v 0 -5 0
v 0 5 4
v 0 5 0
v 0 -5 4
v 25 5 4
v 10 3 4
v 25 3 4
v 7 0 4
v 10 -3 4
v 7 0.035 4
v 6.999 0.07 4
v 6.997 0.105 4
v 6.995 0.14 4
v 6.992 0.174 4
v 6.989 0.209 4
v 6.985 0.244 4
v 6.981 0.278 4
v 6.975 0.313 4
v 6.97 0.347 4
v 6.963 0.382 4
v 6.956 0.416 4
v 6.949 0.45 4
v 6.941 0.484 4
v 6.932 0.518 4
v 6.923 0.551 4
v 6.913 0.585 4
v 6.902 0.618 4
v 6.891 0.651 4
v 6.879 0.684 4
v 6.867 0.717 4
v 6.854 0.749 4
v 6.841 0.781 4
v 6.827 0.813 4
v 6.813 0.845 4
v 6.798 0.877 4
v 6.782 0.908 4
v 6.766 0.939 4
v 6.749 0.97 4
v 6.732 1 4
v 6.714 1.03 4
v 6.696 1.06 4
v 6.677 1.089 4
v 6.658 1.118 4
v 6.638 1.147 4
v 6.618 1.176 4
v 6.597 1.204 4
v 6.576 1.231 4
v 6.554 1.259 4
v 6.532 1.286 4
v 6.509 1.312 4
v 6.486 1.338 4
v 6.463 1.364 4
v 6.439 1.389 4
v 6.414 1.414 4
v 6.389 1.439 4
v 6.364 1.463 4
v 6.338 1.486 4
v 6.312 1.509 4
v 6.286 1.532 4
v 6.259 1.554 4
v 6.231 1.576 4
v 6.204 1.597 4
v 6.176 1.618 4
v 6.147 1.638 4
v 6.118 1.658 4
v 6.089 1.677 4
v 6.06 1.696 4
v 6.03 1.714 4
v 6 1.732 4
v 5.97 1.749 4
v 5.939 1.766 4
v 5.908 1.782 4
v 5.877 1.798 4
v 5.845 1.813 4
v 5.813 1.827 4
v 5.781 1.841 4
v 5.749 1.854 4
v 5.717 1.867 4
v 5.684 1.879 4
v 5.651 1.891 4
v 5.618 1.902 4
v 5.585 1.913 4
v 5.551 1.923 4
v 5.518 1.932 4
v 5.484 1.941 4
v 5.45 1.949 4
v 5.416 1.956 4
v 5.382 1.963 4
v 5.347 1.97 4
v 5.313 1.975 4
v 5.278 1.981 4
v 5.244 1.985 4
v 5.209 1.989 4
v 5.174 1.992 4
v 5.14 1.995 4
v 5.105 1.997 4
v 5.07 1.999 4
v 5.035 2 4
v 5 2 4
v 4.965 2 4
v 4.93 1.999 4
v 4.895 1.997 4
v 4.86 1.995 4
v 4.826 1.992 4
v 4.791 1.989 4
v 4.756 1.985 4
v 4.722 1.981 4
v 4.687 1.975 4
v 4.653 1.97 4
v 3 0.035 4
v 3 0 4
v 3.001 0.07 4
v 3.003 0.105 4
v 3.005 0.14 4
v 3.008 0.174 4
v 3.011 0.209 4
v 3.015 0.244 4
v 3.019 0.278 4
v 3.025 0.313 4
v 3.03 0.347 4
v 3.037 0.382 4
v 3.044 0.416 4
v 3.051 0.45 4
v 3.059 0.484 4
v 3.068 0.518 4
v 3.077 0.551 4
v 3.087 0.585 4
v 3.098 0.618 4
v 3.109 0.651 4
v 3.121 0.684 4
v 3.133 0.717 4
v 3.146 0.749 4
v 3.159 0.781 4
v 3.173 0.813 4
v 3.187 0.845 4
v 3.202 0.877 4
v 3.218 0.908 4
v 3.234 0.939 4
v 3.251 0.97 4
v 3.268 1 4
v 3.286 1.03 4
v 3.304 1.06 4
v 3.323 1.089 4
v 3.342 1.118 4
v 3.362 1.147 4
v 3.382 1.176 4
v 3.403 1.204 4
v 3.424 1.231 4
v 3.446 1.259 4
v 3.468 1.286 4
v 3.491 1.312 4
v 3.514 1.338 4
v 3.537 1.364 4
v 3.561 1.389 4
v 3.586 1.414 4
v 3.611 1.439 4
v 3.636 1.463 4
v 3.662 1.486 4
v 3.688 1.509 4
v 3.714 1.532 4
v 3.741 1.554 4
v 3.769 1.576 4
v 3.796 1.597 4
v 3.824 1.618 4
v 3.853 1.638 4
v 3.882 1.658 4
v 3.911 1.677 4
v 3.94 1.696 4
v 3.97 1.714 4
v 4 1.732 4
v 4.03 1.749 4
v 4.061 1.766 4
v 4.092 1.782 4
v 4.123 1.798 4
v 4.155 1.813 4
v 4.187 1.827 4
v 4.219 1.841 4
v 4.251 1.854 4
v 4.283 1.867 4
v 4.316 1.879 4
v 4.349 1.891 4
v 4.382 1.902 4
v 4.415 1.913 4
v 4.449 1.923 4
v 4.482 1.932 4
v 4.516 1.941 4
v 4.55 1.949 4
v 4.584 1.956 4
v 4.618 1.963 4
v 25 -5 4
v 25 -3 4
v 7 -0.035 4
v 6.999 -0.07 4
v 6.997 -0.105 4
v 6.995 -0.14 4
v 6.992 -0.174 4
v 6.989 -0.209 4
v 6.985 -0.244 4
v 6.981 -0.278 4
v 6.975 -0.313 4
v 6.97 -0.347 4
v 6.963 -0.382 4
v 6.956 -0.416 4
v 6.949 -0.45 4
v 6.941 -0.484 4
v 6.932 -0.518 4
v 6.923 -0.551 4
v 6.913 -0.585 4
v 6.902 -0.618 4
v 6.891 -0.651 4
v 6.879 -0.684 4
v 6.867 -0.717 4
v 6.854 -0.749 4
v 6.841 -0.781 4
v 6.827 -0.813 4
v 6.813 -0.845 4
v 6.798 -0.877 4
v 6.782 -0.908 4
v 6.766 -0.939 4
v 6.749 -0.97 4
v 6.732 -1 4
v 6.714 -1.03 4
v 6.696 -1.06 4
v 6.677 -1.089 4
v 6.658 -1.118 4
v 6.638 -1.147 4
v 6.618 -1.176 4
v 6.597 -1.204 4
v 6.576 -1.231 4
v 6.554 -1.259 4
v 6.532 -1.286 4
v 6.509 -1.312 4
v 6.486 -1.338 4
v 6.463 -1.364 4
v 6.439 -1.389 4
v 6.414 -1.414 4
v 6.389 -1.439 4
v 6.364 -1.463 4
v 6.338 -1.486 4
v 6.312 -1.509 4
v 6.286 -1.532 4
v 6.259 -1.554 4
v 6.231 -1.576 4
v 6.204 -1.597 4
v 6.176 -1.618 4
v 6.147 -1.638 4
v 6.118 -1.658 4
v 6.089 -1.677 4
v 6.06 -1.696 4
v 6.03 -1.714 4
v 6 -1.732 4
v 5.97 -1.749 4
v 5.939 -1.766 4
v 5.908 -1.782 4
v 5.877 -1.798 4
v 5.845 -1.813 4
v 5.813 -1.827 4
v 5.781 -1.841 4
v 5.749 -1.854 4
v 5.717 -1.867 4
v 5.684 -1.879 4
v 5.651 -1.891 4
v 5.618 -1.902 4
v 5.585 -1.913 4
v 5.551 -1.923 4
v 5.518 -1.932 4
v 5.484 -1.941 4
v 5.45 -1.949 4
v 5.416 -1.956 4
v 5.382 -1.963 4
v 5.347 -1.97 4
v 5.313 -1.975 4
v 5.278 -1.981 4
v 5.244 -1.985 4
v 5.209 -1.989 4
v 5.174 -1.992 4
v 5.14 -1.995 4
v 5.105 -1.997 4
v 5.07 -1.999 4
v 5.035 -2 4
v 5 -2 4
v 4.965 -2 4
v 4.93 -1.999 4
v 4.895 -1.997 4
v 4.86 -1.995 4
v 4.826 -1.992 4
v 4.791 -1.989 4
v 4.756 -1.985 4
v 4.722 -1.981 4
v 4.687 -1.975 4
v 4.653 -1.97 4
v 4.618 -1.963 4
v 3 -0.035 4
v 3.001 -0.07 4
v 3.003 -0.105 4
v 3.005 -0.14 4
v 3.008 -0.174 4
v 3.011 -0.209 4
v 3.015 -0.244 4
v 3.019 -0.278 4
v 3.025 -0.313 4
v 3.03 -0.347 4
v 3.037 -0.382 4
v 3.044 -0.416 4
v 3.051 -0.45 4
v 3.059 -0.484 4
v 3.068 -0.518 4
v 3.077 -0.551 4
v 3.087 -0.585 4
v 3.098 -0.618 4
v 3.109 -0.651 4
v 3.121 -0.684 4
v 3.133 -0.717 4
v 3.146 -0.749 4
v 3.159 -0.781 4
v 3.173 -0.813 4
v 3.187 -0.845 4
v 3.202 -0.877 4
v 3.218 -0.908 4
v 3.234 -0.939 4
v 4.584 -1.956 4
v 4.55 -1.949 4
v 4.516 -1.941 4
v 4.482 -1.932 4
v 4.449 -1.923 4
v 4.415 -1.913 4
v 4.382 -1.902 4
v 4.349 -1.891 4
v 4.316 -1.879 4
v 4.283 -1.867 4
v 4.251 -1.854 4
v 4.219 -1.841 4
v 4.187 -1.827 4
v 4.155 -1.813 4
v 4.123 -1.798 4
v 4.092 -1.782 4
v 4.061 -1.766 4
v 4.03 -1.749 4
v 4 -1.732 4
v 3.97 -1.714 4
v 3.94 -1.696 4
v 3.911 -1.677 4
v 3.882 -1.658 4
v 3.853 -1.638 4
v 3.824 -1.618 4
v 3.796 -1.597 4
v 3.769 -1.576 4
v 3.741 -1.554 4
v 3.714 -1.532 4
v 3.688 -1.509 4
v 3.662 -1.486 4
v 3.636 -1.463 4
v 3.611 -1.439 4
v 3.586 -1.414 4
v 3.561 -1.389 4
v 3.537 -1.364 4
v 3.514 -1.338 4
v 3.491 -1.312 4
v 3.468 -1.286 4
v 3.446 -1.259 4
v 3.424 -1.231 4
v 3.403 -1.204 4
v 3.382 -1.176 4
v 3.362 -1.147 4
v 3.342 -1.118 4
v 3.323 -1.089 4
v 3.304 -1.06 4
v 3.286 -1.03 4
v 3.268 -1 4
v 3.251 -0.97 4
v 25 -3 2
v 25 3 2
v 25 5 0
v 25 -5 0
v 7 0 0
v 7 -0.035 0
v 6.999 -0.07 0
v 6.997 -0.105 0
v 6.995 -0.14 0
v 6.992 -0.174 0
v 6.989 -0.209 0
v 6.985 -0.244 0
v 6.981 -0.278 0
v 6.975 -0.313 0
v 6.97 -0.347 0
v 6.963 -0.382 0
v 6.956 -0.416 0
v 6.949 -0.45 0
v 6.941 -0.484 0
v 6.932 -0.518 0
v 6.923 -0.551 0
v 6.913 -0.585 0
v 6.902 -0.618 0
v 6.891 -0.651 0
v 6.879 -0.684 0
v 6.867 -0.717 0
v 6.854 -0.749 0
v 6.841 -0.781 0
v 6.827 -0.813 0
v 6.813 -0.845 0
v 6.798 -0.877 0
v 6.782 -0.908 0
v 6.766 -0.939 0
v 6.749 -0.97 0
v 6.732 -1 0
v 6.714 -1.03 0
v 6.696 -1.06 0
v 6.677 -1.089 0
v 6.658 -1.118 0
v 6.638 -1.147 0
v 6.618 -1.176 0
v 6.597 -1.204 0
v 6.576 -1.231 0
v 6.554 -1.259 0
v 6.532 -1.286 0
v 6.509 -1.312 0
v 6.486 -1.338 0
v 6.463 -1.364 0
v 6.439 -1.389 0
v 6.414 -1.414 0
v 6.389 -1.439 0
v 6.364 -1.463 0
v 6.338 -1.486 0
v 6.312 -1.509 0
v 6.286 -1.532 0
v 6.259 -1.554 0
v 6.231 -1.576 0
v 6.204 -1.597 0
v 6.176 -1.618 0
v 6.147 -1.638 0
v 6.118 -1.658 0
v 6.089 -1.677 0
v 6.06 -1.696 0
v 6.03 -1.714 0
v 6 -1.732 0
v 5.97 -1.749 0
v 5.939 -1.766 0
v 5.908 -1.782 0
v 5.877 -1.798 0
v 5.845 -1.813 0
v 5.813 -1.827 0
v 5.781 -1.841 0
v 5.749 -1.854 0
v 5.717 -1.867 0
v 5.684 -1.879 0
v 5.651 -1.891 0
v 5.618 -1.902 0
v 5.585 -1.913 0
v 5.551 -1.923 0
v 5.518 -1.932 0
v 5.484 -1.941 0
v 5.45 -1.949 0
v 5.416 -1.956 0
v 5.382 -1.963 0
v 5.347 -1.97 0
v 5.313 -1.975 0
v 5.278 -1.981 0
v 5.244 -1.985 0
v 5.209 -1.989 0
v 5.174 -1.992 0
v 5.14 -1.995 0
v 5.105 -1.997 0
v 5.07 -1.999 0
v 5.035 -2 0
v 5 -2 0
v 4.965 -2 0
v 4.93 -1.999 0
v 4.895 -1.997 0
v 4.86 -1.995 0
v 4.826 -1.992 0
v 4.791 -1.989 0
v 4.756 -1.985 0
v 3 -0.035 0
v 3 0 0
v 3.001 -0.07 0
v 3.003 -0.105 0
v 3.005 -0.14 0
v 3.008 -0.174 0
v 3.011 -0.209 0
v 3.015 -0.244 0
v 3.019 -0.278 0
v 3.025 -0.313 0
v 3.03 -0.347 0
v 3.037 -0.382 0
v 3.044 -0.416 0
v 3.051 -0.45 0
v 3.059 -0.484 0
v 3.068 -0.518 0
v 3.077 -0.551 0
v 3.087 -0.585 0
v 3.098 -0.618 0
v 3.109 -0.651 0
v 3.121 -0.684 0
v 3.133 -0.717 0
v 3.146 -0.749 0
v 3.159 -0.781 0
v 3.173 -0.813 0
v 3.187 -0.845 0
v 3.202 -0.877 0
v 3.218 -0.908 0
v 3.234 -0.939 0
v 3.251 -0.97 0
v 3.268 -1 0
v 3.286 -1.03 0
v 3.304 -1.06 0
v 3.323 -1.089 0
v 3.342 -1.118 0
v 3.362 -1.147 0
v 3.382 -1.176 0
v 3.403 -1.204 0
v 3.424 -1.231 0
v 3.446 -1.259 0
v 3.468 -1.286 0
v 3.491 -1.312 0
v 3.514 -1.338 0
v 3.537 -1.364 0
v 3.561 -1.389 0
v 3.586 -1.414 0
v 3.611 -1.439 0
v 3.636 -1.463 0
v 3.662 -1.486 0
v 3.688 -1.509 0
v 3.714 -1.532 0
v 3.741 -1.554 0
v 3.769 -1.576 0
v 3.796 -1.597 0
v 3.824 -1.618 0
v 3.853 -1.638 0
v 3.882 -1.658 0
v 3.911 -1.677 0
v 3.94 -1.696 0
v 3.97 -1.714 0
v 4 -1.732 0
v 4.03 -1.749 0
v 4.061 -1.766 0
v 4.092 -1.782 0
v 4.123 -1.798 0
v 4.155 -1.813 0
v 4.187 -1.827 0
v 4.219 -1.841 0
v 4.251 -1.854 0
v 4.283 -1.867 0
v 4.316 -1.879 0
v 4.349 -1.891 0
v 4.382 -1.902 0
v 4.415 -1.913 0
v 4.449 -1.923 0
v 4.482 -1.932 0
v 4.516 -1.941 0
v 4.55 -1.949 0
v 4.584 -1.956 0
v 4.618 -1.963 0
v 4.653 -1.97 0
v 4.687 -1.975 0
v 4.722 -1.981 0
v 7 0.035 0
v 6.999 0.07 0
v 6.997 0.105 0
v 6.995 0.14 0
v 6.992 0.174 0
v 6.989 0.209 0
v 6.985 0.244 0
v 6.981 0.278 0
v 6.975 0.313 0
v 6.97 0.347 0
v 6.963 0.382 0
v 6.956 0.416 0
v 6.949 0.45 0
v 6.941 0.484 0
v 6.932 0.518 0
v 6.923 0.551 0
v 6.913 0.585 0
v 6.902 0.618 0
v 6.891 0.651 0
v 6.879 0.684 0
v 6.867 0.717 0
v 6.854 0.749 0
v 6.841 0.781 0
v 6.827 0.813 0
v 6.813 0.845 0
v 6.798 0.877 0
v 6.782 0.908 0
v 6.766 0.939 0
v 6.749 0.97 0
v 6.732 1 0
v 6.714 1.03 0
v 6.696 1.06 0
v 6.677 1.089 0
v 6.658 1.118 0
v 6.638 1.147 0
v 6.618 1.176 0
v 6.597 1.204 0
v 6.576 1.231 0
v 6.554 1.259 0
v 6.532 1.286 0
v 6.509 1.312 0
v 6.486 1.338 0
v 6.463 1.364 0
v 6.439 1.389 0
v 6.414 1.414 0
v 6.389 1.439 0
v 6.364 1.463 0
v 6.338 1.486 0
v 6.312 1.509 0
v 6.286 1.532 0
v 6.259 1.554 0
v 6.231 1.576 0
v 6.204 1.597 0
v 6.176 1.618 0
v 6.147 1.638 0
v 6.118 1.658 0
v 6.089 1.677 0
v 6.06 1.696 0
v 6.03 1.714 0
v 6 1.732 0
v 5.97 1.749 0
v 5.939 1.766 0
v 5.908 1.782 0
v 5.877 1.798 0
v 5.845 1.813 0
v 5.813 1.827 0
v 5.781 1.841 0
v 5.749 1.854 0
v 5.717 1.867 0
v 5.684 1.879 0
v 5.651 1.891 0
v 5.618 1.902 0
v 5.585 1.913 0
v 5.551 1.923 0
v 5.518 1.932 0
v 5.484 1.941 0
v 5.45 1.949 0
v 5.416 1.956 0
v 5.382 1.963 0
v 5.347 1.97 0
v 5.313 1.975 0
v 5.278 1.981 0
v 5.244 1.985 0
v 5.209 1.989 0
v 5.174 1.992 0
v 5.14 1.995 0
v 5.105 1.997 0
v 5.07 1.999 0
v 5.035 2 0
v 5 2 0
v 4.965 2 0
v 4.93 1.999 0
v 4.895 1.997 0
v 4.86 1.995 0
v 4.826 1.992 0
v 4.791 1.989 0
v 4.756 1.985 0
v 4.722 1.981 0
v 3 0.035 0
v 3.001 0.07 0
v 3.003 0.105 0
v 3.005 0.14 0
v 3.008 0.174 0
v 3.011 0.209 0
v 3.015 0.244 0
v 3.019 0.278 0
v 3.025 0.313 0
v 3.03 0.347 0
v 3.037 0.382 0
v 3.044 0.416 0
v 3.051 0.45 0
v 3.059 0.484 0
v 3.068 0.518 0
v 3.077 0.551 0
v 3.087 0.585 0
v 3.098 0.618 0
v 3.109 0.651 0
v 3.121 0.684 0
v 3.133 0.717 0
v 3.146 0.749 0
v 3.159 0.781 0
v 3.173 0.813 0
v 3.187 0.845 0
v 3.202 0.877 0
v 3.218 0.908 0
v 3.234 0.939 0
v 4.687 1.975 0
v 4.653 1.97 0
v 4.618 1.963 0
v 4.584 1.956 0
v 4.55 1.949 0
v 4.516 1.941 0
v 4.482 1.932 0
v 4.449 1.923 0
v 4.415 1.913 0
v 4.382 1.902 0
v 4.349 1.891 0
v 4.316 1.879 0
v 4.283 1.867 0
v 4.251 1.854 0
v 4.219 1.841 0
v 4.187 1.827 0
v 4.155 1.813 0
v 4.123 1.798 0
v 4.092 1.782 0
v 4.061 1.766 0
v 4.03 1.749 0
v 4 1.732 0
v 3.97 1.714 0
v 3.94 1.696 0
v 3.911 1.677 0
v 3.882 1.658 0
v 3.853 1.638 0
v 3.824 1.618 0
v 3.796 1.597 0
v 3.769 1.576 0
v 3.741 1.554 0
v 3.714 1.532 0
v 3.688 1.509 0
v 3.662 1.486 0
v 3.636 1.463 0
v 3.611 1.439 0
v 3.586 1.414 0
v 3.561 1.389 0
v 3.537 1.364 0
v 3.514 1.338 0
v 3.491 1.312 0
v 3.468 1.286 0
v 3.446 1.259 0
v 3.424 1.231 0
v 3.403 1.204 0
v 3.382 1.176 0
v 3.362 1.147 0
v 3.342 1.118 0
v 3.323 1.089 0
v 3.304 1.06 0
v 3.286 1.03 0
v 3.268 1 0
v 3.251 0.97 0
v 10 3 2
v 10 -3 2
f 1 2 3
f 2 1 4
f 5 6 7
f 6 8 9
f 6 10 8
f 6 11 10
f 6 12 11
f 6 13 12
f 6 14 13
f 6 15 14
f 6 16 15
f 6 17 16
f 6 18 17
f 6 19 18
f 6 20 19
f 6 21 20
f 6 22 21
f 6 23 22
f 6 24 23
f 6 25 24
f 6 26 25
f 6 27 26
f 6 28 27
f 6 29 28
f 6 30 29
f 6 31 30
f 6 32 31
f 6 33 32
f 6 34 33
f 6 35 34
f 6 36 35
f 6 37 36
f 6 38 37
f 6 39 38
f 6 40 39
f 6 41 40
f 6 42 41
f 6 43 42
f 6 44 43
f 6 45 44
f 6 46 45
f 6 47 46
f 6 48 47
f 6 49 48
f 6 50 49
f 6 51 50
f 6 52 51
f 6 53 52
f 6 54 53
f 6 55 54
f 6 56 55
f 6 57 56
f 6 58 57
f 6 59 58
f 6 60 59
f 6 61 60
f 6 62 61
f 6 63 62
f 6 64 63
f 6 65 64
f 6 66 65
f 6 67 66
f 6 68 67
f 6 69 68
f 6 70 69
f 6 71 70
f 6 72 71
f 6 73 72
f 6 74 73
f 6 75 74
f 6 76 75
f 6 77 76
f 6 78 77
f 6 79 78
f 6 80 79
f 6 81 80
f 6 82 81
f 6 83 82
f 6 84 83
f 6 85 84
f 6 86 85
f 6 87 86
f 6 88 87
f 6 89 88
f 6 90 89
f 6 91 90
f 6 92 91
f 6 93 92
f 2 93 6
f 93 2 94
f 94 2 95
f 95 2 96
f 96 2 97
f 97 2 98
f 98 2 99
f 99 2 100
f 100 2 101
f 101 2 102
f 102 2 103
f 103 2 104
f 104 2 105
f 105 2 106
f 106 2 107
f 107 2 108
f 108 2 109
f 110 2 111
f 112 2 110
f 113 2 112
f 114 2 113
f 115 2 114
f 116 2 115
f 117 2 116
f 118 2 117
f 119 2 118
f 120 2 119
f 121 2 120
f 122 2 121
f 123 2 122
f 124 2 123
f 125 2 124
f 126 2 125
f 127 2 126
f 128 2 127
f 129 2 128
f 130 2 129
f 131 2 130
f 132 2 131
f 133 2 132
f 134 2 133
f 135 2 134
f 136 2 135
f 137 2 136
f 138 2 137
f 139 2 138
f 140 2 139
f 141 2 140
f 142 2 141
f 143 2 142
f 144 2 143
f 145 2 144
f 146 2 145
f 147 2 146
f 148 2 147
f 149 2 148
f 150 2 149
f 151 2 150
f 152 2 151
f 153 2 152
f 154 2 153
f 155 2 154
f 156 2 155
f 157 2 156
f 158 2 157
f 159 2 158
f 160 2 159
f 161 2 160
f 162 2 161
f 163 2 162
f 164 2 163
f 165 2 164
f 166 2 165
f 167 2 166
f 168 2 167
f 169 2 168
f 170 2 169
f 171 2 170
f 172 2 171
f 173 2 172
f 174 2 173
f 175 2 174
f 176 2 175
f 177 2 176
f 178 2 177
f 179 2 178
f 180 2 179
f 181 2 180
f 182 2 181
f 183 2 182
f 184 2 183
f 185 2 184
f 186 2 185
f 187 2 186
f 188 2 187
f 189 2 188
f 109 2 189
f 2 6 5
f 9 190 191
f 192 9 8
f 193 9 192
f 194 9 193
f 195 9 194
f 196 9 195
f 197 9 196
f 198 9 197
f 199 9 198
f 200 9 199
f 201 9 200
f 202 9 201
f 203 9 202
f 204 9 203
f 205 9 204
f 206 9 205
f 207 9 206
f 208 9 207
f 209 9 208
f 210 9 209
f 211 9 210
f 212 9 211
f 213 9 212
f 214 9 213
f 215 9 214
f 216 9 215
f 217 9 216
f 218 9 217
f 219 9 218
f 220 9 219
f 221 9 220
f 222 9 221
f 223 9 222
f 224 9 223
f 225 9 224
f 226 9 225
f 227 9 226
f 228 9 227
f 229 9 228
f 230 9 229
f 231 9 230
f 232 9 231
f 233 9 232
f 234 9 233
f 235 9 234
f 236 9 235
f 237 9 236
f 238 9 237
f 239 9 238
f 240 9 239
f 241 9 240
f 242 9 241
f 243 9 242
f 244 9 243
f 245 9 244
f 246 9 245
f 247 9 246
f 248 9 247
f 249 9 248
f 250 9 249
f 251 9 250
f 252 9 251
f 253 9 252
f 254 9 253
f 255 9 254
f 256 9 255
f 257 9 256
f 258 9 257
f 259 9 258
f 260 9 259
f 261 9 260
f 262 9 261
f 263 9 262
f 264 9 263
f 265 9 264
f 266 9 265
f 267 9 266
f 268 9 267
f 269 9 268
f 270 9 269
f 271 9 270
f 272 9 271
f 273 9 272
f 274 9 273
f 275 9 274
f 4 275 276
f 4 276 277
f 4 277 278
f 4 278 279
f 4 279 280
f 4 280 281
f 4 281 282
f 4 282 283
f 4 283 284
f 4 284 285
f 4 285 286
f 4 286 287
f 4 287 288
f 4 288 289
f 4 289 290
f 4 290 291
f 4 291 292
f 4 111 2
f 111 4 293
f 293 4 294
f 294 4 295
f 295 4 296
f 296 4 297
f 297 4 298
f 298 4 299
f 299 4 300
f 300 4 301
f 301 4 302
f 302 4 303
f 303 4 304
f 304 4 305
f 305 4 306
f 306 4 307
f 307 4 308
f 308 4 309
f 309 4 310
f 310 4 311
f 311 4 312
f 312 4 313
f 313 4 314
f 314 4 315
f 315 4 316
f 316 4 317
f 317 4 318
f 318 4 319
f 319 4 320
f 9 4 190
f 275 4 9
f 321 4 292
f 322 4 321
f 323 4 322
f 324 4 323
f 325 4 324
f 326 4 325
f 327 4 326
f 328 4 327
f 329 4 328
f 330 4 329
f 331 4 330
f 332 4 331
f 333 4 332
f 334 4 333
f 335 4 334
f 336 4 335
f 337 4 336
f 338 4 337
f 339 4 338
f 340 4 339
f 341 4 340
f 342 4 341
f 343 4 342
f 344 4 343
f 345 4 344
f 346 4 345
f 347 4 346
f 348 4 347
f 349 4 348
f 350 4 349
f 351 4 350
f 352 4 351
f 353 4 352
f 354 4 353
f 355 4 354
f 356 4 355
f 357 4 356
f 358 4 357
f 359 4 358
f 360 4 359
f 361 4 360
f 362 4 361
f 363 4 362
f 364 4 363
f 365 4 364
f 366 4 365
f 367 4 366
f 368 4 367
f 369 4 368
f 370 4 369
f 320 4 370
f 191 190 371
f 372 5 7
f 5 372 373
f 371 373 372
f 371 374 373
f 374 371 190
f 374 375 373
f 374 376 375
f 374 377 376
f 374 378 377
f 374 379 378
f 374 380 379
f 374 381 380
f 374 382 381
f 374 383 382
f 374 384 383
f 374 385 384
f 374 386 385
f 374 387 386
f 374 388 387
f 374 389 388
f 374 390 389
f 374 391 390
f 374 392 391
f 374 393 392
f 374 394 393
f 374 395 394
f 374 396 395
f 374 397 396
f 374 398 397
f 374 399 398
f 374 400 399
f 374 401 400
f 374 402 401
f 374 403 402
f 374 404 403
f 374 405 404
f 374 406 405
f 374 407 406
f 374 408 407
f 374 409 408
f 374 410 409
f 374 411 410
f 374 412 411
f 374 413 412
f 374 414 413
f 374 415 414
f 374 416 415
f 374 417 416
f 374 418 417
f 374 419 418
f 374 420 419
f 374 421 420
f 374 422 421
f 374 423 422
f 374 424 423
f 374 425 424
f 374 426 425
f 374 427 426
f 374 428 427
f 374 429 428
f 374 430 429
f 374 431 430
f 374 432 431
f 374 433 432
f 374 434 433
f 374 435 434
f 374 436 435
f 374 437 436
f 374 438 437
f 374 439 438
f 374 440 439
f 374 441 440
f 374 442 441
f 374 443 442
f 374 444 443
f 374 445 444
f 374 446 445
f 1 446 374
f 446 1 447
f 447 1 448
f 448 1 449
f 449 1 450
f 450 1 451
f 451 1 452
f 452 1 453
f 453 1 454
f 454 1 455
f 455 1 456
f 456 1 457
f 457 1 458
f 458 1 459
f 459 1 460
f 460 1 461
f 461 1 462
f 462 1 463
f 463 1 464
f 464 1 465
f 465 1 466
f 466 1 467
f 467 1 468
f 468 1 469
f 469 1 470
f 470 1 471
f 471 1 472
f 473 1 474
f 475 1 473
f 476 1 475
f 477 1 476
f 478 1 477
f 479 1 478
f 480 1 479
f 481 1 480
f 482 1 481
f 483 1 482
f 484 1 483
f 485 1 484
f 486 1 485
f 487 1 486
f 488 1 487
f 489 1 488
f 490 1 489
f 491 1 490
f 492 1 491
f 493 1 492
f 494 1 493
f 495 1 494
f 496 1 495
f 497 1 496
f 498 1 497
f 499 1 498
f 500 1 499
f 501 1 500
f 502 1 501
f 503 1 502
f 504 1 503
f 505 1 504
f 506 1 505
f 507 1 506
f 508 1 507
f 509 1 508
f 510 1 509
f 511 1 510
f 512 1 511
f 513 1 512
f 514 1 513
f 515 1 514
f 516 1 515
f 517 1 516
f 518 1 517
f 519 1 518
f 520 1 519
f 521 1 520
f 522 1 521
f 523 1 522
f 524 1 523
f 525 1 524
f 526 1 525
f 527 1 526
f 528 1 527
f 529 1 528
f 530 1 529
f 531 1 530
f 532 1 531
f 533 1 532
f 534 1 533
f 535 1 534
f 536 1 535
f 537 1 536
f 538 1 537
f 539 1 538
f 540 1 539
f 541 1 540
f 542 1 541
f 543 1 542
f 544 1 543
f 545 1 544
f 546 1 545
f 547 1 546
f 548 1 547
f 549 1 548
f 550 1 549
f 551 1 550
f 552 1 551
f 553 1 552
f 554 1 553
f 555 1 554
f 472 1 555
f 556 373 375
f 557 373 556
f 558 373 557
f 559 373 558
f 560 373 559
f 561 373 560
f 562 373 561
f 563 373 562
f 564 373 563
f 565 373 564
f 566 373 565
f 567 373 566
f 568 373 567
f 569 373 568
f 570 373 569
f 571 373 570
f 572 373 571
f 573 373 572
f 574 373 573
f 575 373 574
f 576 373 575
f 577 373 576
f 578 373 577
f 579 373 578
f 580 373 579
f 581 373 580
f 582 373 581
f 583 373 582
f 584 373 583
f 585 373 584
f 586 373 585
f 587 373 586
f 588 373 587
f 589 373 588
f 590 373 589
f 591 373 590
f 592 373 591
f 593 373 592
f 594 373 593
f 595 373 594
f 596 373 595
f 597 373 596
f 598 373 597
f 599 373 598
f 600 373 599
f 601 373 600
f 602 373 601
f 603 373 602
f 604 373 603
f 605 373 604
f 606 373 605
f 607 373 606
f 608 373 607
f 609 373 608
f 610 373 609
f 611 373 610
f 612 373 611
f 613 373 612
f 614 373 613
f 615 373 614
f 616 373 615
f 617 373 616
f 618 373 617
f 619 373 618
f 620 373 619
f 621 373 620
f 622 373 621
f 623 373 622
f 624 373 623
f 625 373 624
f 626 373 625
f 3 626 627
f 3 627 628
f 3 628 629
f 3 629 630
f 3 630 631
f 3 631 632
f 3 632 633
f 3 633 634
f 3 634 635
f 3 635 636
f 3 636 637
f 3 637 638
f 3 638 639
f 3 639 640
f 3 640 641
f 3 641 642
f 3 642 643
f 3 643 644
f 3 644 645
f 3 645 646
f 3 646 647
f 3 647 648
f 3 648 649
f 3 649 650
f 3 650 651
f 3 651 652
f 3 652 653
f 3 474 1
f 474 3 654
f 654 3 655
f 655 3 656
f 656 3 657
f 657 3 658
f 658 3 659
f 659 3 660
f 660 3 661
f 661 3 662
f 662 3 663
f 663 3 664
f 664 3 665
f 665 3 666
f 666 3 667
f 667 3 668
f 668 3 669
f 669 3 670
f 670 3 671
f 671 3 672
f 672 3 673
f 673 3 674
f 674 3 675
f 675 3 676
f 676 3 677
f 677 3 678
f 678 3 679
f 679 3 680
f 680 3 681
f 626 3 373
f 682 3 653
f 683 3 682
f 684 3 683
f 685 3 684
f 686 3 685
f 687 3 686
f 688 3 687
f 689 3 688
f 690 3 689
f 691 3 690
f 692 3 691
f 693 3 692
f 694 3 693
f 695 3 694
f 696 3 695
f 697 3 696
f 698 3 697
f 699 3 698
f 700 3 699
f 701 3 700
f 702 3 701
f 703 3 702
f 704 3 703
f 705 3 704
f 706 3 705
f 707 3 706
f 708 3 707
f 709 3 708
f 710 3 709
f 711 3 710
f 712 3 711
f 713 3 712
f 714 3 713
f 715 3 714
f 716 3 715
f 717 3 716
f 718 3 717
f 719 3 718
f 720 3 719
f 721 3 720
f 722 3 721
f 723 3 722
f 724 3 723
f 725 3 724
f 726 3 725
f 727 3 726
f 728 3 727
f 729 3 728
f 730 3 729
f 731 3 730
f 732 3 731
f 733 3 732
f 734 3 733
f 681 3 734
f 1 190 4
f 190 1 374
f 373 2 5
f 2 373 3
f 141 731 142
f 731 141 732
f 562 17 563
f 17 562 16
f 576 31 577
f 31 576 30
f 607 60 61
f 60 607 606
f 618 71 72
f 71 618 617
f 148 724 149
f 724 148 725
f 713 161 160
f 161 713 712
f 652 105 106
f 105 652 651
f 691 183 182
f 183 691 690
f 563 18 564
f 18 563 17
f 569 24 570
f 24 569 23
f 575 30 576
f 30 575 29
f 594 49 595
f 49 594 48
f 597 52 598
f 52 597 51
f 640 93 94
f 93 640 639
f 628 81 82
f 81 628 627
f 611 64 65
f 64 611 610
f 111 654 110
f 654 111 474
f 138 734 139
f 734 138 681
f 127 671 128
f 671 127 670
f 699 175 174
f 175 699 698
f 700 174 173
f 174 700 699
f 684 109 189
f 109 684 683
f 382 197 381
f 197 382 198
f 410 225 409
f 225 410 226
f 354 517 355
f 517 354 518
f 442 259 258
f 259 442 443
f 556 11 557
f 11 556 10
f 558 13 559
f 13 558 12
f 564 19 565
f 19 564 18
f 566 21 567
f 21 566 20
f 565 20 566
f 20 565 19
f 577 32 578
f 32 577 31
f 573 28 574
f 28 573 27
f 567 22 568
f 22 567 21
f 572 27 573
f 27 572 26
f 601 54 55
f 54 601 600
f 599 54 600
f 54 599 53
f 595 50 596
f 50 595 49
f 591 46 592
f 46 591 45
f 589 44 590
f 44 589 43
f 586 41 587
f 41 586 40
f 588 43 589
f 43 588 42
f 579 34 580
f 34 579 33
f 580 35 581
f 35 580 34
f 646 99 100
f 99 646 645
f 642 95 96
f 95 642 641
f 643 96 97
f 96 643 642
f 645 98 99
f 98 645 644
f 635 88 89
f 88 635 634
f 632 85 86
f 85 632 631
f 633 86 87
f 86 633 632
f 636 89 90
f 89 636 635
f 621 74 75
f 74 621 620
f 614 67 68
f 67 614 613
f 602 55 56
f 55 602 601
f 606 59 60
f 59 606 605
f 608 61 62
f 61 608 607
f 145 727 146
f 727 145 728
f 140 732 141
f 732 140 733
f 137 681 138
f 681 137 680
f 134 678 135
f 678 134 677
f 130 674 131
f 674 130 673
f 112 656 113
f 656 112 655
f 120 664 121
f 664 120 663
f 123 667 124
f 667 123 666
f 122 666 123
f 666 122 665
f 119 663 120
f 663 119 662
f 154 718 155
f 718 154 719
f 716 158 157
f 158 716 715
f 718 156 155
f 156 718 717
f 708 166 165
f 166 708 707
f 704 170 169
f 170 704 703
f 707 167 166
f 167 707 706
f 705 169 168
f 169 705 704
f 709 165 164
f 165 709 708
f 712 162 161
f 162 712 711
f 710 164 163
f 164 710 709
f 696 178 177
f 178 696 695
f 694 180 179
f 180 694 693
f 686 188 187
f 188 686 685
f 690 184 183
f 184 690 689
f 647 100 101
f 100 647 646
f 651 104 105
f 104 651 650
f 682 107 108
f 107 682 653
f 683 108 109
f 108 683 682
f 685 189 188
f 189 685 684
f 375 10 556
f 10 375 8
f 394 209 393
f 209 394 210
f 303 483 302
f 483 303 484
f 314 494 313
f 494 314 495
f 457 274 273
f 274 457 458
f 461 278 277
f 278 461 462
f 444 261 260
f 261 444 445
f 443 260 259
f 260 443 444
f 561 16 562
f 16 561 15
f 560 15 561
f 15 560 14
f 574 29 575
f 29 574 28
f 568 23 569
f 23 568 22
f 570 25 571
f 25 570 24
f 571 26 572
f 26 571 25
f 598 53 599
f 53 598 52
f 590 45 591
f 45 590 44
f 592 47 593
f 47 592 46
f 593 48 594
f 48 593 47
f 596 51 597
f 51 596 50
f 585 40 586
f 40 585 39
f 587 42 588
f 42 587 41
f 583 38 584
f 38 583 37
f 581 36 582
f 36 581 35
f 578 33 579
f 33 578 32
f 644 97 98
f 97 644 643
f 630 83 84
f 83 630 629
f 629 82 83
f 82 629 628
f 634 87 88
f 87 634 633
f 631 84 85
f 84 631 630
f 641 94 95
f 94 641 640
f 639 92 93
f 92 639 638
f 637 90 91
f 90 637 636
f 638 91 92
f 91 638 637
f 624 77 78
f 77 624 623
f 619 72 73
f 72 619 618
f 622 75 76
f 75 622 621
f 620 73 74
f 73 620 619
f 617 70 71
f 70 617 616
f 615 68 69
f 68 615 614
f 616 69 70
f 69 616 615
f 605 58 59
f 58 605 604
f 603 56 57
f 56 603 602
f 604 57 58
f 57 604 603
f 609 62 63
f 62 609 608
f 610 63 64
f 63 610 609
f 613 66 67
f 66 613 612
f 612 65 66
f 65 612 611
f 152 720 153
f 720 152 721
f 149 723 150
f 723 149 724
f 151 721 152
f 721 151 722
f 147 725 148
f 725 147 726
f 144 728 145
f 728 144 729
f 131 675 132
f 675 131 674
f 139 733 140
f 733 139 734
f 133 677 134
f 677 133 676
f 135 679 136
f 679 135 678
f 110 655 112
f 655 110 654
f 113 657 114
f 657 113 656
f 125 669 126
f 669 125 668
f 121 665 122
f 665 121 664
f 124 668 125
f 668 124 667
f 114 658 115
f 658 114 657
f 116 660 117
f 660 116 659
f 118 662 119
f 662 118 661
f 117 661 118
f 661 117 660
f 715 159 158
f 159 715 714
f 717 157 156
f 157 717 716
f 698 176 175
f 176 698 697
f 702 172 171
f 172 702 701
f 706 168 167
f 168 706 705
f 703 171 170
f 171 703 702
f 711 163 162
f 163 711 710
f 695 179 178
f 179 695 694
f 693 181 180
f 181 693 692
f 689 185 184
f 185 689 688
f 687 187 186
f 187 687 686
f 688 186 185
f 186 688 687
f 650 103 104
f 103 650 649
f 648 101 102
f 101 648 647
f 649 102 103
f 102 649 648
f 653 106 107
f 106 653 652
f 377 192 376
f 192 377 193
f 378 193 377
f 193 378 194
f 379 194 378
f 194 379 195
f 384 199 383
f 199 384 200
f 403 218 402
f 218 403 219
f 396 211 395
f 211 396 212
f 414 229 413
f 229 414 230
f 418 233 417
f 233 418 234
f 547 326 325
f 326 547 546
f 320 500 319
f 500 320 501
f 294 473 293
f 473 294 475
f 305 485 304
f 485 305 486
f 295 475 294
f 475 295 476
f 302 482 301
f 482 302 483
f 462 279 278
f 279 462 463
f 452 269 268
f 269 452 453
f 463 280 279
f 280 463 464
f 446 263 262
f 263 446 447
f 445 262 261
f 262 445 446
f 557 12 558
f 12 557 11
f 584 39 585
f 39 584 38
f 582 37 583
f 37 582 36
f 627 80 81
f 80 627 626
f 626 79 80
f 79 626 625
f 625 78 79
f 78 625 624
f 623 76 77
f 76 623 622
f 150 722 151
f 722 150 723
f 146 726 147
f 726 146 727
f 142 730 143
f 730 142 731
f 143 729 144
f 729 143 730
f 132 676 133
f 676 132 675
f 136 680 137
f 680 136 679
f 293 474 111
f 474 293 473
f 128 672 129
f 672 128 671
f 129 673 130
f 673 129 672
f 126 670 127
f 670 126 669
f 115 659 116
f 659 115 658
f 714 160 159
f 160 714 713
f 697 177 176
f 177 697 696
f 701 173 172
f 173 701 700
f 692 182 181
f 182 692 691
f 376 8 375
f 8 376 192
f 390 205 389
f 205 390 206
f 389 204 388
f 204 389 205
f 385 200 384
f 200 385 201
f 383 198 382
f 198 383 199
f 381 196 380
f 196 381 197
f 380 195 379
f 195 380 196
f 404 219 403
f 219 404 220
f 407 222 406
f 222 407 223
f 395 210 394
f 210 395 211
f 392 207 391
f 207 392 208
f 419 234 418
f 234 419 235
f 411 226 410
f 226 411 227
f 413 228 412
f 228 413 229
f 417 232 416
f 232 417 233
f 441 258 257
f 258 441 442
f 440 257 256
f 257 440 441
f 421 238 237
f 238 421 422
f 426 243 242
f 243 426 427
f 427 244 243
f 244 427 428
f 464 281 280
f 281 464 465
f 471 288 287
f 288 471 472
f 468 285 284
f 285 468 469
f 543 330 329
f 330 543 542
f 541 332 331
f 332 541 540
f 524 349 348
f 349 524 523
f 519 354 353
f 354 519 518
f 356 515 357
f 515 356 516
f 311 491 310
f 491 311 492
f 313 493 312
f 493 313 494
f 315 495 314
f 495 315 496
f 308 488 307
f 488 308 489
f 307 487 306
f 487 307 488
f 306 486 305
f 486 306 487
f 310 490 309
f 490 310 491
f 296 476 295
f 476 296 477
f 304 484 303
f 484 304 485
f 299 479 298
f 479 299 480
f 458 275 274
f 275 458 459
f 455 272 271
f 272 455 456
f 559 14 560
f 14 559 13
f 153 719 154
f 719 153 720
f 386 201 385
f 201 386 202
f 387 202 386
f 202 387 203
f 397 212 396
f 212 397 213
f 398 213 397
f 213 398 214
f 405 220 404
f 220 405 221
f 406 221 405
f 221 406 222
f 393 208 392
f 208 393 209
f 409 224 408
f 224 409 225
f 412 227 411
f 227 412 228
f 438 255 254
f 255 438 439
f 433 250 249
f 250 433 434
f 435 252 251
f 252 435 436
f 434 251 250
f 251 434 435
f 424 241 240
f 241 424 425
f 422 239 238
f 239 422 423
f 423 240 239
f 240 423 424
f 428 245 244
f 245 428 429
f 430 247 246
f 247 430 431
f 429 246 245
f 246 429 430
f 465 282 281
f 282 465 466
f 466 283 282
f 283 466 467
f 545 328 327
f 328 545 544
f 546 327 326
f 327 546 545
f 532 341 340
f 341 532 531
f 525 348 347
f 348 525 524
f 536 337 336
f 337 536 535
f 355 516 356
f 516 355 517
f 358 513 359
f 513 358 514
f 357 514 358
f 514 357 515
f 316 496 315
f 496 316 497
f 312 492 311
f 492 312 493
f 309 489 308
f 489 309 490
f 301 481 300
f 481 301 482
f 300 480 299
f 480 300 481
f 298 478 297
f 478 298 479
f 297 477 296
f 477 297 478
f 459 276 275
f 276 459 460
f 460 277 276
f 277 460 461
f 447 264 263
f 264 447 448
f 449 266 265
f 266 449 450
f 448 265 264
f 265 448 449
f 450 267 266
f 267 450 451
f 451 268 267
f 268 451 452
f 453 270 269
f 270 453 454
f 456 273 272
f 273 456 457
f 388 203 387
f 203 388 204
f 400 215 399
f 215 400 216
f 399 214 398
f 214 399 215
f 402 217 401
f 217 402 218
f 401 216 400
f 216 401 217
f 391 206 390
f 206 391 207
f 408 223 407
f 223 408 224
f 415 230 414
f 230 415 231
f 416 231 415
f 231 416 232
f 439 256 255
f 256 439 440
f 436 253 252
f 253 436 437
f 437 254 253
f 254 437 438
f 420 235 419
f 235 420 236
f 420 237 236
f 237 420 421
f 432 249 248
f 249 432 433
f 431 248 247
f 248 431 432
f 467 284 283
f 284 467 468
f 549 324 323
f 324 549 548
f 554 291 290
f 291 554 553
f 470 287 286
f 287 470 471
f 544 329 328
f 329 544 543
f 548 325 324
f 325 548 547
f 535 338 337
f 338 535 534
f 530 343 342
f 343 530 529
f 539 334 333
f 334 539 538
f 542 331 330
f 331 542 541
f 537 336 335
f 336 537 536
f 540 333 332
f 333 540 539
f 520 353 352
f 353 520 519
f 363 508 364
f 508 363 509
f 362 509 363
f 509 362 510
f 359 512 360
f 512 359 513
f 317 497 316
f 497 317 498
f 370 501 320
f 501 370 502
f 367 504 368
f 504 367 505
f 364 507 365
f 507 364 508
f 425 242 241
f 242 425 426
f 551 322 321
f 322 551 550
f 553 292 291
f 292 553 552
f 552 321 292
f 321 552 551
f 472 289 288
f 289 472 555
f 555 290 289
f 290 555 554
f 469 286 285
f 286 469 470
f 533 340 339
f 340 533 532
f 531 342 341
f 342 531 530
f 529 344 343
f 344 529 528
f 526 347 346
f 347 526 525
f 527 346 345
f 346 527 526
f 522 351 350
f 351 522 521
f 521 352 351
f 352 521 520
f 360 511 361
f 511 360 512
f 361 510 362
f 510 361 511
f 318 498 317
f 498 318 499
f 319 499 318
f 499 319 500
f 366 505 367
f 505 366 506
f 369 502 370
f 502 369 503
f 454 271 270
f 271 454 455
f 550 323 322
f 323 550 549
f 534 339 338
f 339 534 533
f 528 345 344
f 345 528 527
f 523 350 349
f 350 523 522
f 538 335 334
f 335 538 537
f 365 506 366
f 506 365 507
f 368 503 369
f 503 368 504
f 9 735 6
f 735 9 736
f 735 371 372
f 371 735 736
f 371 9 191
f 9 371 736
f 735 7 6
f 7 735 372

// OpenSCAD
difference () {
    translate([0, -5, 0]) { 
        cube([25, 10, 4]);
    }

    translate([5, 0, 0]) { 
        cylinder(h=15, d=4, $fn = 360, center=true);
    }
    
//    translate([5, 0, 0]) { 
//        cylinder(h=3, r1=3.5, r2=1.3, $fn = 360, center=true);
//    }
    
    
    translate([10, -3, 2]) { 
        cube([16, 6, 3]);
    }
}
